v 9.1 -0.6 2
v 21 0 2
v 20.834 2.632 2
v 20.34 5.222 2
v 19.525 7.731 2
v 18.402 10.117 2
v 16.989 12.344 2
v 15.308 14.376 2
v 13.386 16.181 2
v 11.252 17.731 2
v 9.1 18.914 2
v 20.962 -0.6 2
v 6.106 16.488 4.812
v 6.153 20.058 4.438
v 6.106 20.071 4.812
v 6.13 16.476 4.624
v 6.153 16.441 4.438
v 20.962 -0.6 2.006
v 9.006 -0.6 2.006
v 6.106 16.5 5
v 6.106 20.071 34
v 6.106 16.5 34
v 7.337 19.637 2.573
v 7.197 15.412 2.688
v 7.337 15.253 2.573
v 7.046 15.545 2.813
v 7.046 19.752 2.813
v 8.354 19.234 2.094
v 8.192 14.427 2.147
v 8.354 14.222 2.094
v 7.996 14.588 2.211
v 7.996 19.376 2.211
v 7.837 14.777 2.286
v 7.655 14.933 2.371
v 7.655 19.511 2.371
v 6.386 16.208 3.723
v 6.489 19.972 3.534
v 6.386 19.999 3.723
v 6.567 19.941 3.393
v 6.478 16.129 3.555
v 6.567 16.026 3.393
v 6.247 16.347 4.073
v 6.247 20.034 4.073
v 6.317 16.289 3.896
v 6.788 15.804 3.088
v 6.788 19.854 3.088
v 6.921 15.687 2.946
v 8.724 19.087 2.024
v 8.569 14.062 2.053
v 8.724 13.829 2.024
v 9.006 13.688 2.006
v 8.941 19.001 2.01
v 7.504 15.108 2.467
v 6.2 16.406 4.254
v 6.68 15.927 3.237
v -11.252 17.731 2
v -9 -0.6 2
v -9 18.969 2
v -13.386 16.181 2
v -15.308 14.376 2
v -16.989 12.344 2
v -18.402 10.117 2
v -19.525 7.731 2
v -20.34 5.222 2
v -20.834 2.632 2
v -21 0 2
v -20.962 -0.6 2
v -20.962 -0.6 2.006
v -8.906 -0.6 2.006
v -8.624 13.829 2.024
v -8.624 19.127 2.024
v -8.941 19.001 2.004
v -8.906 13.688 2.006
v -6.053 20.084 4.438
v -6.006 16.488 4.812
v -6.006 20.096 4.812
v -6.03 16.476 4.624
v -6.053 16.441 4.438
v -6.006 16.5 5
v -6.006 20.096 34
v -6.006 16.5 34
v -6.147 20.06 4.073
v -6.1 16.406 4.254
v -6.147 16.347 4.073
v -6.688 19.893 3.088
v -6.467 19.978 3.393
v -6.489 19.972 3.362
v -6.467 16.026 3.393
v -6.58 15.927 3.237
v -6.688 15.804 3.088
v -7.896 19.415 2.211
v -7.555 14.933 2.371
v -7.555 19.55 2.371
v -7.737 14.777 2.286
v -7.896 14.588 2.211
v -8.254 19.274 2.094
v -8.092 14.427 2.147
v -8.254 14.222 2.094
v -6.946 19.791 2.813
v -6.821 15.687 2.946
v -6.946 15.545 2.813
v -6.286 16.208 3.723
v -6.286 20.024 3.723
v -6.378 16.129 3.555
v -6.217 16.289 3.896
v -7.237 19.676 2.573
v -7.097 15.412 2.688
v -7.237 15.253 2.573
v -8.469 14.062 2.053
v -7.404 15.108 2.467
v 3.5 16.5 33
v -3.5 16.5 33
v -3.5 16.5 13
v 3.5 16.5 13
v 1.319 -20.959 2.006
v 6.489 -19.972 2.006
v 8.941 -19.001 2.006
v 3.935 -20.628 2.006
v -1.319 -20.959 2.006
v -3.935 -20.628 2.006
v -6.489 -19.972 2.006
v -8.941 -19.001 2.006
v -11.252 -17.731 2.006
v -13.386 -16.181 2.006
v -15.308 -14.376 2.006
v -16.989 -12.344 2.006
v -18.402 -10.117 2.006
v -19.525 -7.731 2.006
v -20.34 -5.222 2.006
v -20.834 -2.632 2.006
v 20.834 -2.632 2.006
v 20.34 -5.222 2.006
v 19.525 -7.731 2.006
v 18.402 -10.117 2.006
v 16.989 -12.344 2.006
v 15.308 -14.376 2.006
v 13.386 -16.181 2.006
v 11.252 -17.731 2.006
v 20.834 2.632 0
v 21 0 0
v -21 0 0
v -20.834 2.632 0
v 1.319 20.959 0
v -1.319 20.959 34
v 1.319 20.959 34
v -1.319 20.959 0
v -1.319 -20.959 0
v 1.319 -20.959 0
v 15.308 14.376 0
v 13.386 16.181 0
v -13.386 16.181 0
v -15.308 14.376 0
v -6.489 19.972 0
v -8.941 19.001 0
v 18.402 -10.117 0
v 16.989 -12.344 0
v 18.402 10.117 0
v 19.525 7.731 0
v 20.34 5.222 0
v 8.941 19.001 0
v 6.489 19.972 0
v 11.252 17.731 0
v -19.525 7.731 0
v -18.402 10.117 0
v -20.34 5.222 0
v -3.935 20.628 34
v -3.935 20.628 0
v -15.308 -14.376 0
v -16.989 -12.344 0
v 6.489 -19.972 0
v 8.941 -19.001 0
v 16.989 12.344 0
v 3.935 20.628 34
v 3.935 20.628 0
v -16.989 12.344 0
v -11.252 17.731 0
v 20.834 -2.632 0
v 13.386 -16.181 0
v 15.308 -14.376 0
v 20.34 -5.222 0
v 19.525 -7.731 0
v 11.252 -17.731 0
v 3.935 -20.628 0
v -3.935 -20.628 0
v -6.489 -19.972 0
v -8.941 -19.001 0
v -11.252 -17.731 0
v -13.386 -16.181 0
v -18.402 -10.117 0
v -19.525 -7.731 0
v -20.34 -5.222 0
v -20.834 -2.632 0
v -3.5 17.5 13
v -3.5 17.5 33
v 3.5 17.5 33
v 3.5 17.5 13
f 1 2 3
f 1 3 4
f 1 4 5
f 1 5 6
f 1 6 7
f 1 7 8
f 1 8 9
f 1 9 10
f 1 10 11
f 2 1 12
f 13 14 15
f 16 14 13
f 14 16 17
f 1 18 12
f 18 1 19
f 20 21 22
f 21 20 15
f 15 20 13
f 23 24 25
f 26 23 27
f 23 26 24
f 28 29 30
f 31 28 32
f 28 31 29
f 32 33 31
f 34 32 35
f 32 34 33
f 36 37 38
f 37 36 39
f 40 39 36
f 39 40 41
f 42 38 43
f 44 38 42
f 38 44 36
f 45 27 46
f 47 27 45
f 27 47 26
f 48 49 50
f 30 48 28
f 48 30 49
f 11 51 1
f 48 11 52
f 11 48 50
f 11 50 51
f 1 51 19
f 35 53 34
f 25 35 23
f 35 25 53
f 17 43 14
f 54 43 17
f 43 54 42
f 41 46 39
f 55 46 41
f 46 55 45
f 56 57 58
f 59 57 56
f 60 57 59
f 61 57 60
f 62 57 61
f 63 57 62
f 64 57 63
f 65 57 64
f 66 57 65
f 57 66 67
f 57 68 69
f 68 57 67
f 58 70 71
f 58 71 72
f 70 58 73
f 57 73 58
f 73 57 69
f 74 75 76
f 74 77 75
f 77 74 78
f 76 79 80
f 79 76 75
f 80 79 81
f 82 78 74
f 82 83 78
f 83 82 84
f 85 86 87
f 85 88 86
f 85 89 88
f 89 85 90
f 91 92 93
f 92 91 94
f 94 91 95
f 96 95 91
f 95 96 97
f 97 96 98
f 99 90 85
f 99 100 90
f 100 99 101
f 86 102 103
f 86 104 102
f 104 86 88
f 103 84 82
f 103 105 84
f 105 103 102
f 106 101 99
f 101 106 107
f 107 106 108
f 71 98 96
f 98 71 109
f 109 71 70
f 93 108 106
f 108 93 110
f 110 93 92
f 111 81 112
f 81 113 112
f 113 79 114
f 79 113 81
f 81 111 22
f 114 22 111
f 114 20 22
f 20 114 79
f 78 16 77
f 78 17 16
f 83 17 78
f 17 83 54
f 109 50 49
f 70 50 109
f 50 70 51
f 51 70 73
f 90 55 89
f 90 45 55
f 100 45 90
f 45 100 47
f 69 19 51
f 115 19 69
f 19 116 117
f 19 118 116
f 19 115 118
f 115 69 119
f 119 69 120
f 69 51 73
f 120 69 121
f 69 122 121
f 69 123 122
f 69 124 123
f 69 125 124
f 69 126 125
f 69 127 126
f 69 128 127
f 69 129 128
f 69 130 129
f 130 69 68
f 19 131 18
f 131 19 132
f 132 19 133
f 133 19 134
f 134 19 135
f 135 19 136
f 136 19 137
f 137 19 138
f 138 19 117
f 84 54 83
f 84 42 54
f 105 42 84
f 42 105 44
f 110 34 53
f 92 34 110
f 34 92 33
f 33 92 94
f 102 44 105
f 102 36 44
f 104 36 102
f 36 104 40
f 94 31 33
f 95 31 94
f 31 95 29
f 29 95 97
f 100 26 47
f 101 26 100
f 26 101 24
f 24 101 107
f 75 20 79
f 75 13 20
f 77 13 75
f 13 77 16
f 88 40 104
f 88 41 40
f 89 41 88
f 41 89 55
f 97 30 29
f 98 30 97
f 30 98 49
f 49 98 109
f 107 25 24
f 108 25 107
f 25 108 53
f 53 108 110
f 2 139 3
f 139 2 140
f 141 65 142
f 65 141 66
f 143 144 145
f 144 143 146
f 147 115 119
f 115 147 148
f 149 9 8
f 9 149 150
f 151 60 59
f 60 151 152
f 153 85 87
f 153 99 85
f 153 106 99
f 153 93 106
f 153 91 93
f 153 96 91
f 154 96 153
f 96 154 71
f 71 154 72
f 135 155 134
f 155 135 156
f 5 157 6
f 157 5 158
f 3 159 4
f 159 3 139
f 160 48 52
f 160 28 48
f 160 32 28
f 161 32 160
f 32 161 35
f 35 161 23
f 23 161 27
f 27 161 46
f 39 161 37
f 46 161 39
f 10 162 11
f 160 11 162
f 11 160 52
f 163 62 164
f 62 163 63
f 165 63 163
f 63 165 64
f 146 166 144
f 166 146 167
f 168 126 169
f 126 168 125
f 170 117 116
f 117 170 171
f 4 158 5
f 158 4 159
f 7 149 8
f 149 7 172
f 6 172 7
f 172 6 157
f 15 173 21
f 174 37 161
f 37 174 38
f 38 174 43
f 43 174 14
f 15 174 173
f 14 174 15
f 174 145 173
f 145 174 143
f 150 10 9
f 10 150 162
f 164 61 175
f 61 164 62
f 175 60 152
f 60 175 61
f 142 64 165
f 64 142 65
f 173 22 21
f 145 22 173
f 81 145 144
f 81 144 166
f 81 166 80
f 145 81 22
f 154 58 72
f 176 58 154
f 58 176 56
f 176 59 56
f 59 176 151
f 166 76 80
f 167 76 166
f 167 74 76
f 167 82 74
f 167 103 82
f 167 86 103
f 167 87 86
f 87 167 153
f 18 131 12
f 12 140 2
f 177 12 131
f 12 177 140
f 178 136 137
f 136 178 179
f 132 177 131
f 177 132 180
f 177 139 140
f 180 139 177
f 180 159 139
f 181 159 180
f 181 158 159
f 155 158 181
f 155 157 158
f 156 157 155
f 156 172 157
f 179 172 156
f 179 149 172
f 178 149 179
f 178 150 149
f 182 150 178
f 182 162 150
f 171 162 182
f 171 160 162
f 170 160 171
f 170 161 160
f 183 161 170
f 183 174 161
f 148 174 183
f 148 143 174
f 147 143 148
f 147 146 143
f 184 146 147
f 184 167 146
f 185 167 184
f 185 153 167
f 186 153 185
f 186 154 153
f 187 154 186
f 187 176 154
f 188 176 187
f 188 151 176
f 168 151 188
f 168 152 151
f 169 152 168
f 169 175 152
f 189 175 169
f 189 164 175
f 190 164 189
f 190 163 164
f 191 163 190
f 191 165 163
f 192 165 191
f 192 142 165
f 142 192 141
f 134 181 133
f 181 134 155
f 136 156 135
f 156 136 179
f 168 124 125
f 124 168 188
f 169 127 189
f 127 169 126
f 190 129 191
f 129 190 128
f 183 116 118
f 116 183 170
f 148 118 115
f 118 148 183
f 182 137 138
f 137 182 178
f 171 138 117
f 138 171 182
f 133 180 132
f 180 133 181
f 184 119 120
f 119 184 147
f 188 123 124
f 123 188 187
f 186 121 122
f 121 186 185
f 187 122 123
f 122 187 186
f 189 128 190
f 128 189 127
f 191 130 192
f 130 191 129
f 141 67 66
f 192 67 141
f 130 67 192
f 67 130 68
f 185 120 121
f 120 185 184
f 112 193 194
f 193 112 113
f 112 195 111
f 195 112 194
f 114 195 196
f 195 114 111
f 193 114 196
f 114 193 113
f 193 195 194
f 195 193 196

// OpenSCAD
sigma=0.1;

base_thickness=2;
base_diameter=42;

neck_height=32;
neck_width=12;
neck_thickness=10;
neck_offset=20;
roundness=3;

horn_width=7;
horn_length=20;
horn_depth=1;
horn_yfudge=1.5;
horn_zfudge=1;

union()
{
    difference()
    {
        chop=5;

        //Base
        cylinder(d=base_diameter,h=base_thickness+neck_height,$fn=50);
        
        translate([0,neck_offset,base_thickness])
        {
            //Cut Walls
            translate([0,-base_diameter/2-sigma,0])
            {
                edge_to_out_wall=(base_diameter-neck_width)/2;
                translate([base_diameter/2-edge_to_out_wall+sigma,0,0])
                    round_cube(size=[edge_to_out_wall+chop+sigma,
                        base_diameter+sigma*2,
                        neck_height+chop+sigma],
                        radius=roundness);
                translate([-base_diameter/2-chop-sigma,0,0])
                    round_cube(size=[edge_to_out_wall+chop+sigma,
                        base_diameter+sigma*2,
                        neck_height+chop+sigma],
                        radius=roundness);
            }
            translate([-base_diameter/2,0,0])
            {
                cube_width=(base_diameter-neck_thickness)/2+sigma;
                translate([0,neck_thickness/2+sigma,0])
                    round_cube(size=[base_diameter,
                        cube_width,
                        neck_height+chop+sigma],
                        rot_z=true,
                        radius=roundness);
                translate([0,-base_diameter/2-neck_offset-sigma,0])
                    round_cube(size=[base_diameter,
                        cube_width+neck_offset,
                        neck_height+chop+sigma],
                        rot_z=true,
                        radius=roundness);
            }
        }

        //Cut Servo Horn
        translate([-horn_width/2,
            neck_offset-neck_thickness/2+horn_yfudge-sigma,
            base_thickness+neck_height-horn_length-horn_zfudge])
            cube(size=[horn_width,horn_depth+sigma,horn_length]);
    }
}

module round_cube(size,radius=1,rot_z=false)
{
	$fn=50;
    
    if(rot_z)
    {
        x=size[1]-radius/2;
        y=size[2]-radius/2;
        z=size[0];

        translate([0,0,radius])
            rotate([90,0,90])
                minkowski()
                {
                    cube(size=[x,y,z]);
                    cylinder(r=radius);
                }
    }
    else
    {
        x=size[2]-radius*2;
        y=size[0]-radius*2;
        z=size[1];

        translate([radius,z+radius-radius/2,x+radius])
            rotate([90,90,0])
                minkowski()
                {
                    cube(size=[x,y,z]);
                    cylinder(r=radius);
                }
    }
}
